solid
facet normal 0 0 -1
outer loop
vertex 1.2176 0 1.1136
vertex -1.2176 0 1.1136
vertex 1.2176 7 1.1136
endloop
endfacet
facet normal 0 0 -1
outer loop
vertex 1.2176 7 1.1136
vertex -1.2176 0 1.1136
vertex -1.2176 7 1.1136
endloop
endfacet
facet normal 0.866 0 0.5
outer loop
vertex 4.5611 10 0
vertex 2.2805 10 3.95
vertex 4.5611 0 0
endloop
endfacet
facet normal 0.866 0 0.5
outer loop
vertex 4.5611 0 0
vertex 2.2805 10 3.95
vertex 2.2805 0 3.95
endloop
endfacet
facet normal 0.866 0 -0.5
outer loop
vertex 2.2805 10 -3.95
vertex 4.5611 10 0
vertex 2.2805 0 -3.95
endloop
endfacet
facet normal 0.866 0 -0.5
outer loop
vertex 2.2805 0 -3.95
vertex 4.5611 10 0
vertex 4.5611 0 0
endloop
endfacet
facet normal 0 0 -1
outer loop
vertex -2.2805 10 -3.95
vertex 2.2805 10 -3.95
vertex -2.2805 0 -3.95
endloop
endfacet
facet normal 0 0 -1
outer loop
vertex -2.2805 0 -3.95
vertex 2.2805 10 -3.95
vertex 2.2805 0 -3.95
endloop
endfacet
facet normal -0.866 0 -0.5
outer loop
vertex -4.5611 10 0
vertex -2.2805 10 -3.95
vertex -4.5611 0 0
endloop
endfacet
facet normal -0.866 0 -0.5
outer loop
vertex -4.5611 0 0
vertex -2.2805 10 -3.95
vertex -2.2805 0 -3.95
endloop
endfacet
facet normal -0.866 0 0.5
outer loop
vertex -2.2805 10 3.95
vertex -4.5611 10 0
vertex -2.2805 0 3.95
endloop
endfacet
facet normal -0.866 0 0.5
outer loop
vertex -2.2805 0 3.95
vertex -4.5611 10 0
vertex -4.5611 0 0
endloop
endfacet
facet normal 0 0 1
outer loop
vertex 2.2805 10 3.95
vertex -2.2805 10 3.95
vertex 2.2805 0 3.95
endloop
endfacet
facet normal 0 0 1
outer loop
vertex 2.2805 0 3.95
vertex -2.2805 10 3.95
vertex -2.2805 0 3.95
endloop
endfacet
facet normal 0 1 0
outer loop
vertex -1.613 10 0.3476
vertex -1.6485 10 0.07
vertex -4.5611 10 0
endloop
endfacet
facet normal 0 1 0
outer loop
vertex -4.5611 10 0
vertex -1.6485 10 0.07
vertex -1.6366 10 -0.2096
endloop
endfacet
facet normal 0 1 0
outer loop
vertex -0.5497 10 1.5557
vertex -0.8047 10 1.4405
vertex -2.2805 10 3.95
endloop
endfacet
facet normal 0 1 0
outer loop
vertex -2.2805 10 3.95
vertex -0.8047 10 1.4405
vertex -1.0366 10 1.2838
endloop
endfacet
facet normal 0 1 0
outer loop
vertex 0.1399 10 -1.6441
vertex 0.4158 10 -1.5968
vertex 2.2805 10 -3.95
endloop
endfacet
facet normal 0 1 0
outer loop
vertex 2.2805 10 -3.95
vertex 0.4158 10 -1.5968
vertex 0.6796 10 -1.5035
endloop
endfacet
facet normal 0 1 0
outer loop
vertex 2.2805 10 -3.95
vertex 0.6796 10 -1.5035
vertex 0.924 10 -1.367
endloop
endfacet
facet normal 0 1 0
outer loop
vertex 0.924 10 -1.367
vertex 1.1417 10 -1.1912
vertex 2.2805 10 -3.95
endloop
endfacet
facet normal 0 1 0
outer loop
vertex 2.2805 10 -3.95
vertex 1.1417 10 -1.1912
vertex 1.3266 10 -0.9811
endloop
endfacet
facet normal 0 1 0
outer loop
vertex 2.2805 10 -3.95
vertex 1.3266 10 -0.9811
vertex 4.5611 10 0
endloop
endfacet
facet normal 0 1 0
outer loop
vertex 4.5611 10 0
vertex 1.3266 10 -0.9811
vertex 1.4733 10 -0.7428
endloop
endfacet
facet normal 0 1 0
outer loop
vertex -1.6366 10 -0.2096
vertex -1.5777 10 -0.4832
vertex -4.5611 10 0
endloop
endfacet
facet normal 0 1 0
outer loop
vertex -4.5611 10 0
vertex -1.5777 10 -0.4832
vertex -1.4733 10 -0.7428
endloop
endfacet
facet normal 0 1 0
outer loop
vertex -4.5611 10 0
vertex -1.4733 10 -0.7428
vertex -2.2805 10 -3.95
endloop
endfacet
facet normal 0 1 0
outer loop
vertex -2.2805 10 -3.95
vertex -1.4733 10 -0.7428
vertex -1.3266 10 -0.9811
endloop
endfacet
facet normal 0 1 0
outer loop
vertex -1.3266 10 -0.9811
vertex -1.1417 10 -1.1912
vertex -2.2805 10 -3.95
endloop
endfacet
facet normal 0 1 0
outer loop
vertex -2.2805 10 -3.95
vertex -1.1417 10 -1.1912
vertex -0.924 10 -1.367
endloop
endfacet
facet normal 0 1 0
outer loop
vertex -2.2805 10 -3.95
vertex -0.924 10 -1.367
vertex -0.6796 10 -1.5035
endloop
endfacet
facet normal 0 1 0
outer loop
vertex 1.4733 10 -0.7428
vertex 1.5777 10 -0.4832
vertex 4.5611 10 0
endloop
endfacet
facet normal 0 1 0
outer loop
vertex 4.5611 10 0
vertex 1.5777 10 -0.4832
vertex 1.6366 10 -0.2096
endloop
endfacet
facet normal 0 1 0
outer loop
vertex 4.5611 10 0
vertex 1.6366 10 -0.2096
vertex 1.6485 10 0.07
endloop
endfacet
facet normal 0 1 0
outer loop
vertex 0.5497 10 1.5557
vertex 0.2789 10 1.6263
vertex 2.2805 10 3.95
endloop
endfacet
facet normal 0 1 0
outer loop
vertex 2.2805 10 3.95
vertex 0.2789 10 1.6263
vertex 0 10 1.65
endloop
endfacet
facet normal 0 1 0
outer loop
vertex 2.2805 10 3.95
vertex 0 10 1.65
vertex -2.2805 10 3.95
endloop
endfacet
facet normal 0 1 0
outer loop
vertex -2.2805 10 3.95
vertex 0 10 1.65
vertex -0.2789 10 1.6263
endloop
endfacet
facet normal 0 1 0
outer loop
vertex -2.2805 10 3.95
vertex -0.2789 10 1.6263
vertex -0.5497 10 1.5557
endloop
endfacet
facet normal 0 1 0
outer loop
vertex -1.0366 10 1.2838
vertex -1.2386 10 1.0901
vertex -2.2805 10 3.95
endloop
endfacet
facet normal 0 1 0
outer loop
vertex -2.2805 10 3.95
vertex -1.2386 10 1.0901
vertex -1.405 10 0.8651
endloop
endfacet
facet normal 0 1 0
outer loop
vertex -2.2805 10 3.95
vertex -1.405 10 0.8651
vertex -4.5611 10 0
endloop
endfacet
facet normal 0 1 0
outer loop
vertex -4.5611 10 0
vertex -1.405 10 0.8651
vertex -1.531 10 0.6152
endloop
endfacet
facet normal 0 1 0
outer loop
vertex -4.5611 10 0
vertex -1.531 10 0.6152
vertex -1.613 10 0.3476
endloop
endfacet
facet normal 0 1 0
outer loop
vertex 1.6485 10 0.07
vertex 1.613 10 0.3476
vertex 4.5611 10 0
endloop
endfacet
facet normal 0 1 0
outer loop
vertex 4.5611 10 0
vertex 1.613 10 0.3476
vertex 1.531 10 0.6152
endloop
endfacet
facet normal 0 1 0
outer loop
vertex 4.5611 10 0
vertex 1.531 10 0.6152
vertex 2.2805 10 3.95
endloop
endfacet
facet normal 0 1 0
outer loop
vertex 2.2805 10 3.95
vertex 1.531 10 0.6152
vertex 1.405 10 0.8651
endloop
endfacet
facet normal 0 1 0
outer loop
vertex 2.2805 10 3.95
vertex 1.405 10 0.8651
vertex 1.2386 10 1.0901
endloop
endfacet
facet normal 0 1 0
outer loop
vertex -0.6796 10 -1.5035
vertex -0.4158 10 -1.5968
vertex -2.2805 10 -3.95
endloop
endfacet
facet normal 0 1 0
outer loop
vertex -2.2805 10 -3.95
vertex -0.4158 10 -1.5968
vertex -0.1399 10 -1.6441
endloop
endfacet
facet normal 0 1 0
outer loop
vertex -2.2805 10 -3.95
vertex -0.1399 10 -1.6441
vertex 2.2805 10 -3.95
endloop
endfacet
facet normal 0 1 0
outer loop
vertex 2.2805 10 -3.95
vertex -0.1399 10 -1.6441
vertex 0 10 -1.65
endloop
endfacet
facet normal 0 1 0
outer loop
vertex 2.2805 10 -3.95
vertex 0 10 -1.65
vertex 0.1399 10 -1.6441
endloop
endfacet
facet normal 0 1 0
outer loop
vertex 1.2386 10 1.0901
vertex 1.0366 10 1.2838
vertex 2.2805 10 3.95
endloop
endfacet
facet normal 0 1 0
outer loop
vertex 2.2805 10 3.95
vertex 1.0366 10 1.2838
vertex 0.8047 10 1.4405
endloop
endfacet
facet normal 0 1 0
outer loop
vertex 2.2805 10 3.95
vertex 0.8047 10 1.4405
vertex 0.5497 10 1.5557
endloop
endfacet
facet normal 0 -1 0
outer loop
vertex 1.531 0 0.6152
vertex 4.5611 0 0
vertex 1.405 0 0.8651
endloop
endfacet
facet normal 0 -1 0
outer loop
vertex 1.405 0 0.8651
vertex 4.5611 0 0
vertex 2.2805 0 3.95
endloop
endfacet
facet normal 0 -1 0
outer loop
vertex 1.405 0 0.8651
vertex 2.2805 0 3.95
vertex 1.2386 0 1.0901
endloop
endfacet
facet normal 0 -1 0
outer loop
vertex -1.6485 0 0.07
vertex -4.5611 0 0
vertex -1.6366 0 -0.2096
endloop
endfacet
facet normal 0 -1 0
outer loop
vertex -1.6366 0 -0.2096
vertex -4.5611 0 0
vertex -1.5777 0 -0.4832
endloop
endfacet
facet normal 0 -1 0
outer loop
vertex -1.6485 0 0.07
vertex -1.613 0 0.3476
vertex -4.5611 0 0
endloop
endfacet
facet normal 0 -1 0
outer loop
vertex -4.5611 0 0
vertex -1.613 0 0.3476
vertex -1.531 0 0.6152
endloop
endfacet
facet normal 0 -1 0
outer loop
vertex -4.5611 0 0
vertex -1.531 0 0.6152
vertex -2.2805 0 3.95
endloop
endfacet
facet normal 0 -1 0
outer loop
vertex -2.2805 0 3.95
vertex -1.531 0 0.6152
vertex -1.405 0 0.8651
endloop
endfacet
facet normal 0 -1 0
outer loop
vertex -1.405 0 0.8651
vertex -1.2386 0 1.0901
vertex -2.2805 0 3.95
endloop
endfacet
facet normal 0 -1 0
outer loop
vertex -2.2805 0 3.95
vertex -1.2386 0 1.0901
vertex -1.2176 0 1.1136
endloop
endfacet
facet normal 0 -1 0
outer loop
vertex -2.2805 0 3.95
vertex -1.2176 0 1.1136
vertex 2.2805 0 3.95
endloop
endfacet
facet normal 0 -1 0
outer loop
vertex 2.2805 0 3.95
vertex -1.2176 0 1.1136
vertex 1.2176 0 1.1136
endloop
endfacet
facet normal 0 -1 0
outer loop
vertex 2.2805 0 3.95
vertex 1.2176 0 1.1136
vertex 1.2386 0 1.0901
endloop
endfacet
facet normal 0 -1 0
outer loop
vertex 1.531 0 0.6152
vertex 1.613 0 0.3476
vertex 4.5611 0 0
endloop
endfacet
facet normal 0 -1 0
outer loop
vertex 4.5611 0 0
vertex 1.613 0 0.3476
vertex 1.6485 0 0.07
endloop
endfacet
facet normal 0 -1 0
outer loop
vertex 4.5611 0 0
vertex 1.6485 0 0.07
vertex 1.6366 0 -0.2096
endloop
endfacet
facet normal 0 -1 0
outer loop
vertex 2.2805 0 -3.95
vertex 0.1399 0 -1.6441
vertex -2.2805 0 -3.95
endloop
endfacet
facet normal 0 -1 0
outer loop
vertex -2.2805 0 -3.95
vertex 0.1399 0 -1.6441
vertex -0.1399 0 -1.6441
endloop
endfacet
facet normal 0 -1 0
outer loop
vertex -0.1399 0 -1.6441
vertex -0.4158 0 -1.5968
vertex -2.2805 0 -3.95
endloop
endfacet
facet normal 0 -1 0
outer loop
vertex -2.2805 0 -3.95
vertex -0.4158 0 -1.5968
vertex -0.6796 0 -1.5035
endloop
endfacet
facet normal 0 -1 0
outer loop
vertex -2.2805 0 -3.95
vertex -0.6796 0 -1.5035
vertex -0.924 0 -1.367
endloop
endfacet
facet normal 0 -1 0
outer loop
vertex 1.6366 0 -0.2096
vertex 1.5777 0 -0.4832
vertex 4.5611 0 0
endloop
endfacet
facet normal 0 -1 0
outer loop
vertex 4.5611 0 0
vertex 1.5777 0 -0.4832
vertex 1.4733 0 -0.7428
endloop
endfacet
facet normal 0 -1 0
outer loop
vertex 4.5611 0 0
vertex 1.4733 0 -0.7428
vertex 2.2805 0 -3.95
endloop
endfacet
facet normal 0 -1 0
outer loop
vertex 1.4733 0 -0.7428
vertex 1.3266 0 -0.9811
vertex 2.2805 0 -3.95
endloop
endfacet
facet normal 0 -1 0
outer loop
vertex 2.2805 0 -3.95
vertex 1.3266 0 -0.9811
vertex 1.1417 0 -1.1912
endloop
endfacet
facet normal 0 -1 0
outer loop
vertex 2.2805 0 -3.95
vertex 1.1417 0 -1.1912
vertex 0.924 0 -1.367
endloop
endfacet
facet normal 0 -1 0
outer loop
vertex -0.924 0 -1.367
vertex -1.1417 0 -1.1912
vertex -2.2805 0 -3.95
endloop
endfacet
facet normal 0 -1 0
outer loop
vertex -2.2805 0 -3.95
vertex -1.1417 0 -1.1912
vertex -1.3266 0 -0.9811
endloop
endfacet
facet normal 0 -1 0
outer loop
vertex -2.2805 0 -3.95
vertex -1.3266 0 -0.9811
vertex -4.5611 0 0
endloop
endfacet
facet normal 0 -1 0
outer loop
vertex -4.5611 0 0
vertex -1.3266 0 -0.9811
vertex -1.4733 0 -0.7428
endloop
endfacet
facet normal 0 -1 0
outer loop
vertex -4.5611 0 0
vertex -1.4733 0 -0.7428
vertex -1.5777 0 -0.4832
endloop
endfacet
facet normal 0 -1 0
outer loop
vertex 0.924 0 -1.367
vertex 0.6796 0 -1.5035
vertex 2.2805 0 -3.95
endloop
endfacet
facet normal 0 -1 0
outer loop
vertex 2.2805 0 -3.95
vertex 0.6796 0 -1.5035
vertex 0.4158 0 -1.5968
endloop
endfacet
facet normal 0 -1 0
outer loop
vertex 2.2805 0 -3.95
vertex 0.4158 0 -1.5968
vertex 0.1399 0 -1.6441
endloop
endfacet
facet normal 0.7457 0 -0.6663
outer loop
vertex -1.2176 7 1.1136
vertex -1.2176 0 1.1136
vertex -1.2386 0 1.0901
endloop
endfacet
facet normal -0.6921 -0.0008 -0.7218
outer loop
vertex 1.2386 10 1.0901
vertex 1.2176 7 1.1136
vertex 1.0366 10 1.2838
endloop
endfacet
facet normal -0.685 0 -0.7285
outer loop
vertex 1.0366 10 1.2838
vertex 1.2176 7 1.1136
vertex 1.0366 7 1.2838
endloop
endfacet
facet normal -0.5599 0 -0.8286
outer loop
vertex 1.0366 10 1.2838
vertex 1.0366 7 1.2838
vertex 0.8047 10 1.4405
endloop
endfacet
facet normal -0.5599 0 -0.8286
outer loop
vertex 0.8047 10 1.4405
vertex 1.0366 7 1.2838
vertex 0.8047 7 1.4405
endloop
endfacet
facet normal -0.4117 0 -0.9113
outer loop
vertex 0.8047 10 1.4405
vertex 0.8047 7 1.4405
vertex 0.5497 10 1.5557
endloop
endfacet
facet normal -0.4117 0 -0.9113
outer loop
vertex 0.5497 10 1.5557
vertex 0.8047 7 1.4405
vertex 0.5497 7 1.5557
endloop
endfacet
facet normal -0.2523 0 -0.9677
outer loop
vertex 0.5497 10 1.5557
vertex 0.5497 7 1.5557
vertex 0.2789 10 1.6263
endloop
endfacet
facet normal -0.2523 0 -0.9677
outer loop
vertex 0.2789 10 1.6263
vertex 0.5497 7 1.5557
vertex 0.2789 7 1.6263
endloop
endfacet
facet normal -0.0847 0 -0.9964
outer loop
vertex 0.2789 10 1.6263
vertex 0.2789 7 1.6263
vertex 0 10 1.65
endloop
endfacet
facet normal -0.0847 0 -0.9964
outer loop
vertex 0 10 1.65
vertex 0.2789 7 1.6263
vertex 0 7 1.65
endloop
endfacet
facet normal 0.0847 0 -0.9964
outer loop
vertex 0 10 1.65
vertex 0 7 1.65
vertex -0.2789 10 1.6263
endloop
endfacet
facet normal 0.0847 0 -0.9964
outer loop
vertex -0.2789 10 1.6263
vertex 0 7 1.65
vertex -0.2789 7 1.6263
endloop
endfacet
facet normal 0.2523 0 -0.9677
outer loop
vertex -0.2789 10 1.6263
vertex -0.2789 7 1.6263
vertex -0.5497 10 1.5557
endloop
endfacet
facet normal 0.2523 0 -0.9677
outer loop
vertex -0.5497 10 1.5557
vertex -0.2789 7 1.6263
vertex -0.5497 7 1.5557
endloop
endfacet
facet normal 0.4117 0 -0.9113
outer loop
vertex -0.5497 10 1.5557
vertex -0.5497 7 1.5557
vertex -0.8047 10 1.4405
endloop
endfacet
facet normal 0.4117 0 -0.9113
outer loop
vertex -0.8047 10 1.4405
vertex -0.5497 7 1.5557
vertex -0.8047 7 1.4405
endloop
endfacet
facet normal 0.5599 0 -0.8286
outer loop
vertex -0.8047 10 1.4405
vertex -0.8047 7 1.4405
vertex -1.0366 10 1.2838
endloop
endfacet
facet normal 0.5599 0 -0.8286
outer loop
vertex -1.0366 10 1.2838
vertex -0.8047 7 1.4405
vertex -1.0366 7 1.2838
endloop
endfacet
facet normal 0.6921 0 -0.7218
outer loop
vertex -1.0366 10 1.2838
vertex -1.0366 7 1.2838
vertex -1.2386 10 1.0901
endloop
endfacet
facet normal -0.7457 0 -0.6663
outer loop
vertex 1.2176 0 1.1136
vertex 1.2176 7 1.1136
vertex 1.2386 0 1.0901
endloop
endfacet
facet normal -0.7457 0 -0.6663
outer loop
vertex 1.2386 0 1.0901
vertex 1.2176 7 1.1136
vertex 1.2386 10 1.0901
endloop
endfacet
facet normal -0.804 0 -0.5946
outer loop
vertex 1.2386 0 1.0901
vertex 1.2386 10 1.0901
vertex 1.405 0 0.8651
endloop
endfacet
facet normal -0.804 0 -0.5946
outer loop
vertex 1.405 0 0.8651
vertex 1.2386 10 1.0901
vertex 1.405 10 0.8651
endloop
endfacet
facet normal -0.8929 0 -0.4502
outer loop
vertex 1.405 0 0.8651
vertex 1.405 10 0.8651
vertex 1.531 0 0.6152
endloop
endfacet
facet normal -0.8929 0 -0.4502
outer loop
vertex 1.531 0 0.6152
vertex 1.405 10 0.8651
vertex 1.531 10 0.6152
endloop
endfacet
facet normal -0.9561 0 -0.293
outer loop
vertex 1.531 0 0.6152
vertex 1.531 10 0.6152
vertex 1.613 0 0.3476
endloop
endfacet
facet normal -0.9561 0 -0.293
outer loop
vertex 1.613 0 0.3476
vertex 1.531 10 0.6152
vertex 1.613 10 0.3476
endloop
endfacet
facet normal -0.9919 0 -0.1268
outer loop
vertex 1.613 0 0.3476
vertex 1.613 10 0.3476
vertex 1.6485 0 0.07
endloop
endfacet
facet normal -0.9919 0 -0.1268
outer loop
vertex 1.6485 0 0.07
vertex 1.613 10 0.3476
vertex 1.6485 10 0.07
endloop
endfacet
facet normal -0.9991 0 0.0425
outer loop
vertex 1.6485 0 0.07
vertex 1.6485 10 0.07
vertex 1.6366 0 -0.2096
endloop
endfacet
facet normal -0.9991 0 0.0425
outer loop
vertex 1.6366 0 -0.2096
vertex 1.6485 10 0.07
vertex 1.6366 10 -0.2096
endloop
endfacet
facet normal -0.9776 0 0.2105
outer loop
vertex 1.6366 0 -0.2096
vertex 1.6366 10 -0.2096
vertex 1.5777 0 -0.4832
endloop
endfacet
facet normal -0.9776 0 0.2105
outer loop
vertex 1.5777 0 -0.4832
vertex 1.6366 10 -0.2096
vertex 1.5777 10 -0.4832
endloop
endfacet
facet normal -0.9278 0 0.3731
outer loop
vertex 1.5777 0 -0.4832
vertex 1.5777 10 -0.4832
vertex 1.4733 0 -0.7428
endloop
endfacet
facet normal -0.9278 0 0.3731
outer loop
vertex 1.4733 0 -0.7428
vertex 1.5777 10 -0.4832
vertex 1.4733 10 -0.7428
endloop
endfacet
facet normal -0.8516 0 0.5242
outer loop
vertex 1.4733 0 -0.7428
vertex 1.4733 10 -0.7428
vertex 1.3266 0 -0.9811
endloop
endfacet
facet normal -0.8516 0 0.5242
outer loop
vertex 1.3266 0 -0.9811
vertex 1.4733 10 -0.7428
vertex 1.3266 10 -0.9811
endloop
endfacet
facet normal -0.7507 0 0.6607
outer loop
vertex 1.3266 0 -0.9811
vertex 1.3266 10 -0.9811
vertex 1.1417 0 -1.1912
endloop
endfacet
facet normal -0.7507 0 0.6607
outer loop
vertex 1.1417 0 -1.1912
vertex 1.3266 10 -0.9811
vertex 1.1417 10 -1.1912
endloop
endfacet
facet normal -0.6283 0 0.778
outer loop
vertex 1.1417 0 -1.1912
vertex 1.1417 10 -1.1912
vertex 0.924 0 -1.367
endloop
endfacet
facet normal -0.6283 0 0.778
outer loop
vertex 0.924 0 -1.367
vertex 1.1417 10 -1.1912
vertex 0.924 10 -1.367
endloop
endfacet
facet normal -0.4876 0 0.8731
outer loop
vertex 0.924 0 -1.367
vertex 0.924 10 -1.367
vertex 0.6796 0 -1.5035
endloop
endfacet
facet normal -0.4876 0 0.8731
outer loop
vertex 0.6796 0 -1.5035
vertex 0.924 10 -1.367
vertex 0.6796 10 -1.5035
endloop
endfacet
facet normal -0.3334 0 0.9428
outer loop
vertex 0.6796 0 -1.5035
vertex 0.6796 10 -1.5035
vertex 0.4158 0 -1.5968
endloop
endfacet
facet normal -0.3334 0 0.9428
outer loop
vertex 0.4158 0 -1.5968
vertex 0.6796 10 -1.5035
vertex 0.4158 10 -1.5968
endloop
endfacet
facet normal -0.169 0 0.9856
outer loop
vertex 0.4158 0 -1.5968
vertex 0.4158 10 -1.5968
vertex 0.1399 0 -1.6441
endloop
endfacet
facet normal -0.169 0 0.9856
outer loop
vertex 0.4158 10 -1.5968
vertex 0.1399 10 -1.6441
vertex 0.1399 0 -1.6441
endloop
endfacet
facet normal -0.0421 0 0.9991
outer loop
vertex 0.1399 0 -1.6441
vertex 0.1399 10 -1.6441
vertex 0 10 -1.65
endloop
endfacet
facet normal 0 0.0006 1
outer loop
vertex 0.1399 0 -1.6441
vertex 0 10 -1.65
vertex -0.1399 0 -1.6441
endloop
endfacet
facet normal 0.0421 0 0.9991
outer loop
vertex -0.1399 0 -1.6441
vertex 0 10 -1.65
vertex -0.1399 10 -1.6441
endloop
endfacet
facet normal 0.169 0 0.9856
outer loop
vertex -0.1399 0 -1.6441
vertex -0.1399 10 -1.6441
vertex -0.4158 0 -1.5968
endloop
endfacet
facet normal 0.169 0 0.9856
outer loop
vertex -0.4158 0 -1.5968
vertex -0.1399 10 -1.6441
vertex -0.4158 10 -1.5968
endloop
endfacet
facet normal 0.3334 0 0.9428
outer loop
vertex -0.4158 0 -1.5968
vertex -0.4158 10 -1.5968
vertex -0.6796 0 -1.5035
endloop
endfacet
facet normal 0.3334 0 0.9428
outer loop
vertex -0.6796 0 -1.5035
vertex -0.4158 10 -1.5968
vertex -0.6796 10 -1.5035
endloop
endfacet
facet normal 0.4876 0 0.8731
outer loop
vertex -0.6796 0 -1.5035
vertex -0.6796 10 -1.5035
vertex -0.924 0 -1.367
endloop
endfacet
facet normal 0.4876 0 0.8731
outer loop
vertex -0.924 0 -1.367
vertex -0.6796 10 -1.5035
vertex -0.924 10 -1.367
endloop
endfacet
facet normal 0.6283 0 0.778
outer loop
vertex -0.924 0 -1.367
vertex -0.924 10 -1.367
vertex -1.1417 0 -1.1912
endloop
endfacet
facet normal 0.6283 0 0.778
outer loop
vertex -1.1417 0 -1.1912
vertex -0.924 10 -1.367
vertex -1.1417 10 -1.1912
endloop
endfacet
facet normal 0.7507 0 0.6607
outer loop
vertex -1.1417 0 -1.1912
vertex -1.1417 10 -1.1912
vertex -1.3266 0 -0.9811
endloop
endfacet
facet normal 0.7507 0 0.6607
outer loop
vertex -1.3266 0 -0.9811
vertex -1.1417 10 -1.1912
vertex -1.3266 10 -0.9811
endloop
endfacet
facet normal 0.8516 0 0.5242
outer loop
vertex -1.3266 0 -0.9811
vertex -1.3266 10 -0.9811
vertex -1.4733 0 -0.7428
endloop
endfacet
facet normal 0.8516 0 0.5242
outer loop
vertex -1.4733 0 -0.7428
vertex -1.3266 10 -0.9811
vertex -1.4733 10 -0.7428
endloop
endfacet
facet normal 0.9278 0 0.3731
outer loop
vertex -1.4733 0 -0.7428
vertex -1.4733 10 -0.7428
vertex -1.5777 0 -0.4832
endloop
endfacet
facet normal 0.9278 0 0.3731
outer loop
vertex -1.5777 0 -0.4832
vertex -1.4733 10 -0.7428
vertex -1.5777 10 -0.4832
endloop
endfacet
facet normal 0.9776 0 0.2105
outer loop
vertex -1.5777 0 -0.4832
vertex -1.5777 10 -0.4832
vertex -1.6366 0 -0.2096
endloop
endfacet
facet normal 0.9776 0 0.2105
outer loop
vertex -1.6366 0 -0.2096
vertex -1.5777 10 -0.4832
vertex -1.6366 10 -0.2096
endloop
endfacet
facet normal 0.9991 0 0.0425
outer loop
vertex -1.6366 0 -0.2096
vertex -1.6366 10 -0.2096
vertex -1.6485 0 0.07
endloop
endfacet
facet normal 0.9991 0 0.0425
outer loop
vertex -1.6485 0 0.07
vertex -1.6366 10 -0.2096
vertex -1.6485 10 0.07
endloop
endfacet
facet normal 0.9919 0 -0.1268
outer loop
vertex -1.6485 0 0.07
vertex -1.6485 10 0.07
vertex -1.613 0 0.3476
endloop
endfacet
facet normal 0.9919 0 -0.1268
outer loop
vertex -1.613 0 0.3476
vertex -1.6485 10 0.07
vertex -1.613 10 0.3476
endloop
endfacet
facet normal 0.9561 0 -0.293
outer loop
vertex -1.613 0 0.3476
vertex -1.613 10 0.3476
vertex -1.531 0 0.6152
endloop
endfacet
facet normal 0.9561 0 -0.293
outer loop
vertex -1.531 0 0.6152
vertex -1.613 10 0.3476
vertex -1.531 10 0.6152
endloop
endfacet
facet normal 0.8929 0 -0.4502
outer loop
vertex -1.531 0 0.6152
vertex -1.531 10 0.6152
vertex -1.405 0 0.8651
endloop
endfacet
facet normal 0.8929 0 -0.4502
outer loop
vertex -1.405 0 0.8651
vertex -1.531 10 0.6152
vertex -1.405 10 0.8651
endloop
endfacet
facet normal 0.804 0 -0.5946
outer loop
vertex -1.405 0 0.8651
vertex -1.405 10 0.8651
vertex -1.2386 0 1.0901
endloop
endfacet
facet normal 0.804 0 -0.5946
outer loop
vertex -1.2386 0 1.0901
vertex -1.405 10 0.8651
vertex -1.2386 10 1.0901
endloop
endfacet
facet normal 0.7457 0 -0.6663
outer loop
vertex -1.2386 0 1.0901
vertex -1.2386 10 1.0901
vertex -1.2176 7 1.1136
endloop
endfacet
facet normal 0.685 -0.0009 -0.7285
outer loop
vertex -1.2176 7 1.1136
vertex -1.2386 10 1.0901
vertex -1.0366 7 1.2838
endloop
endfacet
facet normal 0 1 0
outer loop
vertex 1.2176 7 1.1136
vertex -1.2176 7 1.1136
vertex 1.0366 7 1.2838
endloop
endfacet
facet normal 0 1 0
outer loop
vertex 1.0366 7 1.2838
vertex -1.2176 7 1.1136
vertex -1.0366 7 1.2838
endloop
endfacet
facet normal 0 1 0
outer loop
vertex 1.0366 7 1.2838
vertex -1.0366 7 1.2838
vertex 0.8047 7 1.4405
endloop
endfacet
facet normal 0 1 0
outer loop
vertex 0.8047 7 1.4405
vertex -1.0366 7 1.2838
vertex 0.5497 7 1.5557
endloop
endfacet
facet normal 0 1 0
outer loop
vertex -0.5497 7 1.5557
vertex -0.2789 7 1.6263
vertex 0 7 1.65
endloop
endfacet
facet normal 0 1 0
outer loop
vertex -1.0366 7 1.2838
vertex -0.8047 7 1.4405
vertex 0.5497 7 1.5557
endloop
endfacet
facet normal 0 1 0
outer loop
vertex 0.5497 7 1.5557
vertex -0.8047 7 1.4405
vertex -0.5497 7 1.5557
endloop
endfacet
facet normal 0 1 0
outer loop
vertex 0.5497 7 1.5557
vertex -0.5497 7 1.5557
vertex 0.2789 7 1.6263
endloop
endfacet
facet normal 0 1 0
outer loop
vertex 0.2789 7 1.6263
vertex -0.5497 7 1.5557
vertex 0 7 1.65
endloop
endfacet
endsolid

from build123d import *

# Parameters (mm, degrees)
BOSS_EXTRUDE1_DEPTH = 10
CUT_EXTRUDE6_DEPTH  = 14
SKETCH11_R          = 1.65
CUT_EXTRUDE7_DEPTH  = 3


with BuildPart() as part:
    # Sketch1 → Boss-Extrude1 (new body)
    with BuildSketch(Plane(origin=(0, 0, 0), x_dir=(1, 0, 0), z_dir=(0, 1, 0))):
        Polygon((4.561067127, 0), (2.280533563, 3.95), (-2.280533563, 3.95), (-4.561067127, 0), (-2.280533563, -3.95), (2.280533563, -3.95), align=None)
    extrude(amount=BOSS_EXTRUDE1_DEPTH)

    # Sketch9 → Cut-Extrude6 (cut)
    with BuildSketch(Plane(origin=(0, 10, 0), x_dir=(1, 0, 0), z_dir=(0, 1, 0))):
        with BuildLine():
            Line((-1.217575979, -1.113556795), (1.217575979, -1.113556795))
            ThreePointArc((1.217575979, -1.113556795), (0, 1.65), (-1.217575979, -1.113556795))
        make_face()
    extrude(amount=-CUT_EXTRUDE6_DEPTH, mode=Mode.SUBTRACT)

    # Sketch11 → Cut-Extrude7 (cut)
    with BuildSketch(Plane(origin=(0, 10, 0), x_dir=(1, 0, 0), z_dir=(0, 1, 0))):
        with Locations(Location((0, 0, 0), (0, 0, 317.554942162))):
            Circle(SKETCH11_R)
    extrude(amount=-CUT_EXTRUDE7_DEPTH, mode=Mode.SUBTRACT)


solid = part.part
